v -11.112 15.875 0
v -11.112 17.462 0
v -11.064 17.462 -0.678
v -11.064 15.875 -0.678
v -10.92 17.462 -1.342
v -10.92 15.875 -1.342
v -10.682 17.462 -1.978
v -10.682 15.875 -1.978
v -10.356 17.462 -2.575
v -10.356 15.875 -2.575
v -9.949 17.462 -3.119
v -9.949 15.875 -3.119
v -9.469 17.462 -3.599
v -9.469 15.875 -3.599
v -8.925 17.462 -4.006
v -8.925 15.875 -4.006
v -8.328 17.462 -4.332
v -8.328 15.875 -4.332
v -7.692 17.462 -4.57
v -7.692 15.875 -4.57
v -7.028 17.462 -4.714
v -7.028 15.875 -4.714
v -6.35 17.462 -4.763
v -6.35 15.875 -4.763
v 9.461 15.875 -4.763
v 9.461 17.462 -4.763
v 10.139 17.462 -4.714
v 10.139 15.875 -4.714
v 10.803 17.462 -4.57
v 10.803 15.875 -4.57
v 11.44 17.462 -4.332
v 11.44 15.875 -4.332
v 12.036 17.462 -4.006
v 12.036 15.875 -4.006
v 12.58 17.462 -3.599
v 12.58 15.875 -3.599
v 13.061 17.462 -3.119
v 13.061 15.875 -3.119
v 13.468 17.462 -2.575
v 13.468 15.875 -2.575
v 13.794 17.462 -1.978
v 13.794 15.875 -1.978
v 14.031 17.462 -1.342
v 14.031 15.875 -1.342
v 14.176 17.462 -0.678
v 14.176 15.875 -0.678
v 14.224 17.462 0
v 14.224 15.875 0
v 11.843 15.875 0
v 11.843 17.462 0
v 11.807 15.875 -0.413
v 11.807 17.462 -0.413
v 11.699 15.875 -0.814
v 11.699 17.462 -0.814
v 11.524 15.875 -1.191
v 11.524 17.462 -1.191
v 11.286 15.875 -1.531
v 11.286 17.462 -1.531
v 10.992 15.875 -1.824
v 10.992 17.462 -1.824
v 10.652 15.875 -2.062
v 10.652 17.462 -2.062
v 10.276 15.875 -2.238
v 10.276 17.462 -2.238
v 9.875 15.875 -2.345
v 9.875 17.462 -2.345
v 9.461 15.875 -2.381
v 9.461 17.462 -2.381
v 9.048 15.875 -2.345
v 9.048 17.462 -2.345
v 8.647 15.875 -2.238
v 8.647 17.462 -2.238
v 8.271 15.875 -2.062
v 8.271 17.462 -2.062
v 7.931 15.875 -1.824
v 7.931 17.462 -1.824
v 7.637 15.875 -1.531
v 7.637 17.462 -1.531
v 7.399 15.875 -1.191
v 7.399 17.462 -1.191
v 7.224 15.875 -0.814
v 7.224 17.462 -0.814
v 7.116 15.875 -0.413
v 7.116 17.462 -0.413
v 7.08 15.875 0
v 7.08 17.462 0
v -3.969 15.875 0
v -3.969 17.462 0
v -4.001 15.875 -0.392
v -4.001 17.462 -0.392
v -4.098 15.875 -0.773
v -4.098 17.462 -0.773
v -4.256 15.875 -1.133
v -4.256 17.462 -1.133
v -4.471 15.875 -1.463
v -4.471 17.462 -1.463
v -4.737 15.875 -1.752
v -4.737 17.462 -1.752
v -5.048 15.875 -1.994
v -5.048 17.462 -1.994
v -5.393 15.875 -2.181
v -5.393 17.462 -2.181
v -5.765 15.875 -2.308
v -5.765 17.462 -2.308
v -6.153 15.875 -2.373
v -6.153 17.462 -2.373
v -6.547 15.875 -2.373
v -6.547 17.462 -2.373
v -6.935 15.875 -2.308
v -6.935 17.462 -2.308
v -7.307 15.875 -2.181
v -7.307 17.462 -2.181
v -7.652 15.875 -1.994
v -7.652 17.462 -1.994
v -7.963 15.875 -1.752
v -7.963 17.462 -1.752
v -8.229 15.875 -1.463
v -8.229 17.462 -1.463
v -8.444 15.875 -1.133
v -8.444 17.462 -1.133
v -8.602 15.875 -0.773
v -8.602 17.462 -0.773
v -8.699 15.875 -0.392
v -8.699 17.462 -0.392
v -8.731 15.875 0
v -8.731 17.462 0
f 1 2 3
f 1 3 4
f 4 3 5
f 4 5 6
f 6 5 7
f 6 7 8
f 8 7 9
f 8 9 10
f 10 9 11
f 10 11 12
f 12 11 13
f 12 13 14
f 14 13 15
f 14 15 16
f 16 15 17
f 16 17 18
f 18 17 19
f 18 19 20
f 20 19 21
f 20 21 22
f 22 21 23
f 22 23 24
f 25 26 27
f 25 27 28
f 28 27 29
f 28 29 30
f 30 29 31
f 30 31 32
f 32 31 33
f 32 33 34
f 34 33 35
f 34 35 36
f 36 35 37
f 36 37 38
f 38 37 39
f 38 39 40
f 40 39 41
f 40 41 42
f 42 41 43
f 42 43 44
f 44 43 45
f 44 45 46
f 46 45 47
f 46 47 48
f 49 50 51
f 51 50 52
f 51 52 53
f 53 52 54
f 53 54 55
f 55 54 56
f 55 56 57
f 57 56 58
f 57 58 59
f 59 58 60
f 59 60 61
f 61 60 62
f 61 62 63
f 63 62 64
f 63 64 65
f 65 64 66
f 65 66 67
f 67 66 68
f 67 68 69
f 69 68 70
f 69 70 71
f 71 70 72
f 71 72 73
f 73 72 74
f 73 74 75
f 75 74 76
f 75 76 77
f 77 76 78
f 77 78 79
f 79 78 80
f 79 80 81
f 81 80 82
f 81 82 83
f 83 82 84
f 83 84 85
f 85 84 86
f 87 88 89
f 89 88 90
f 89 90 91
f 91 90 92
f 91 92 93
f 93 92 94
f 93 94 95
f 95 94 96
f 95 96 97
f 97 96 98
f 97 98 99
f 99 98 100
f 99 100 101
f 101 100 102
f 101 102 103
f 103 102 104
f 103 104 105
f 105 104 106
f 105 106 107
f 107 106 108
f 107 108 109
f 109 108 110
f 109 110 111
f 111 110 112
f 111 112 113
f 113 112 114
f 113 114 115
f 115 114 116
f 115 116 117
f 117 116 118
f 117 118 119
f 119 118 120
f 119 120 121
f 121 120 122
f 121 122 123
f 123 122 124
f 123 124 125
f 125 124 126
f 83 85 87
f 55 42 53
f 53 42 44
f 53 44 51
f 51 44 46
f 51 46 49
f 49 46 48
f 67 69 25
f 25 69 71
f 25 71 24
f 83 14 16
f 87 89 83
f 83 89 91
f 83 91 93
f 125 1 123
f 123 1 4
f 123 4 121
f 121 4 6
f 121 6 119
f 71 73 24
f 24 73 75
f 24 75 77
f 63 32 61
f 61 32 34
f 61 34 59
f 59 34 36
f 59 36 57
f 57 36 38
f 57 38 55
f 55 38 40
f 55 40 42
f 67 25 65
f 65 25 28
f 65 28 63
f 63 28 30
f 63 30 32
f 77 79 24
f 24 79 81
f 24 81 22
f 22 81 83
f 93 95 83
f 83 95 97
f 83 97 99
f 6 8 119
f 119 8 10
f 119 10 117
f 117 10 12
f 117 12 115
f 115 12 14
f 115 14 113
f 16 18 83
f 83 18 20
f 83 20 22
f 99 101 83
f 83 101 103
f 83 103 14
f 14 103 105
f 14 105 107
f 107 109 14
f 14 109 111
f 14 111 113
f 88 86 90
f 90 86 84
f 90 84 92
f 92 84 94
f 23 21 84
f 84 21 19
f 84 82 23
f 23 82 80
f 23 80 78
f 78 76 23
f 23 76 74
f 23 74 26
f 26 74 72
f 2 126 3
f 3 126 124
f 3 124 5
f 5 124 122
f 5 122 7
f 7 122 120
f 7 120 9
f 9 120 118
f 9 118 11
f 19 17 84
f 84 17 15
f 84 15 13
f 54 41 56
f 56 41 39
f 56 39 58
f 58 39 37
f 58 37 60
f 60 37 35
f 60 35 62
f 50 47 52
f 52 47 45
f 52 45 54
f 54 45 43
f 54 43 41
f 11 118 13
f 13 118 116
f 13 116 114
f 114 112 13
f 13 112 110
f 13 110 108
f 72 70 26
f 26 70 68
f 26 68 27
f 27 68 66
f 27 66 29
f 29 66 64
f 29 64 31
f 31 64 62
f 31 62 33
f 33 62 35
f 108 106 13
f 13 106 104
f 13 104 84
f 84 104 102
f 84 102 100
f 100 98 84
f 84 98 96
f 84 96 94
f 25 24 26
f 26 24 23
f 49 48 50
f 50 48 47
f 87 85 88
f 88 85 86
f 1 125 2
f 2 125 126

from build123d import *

# Parameters (mm, degrees)
SKETCH1_R               = 2.38125
BOSS_EXTRUDE1_DEPTH     = 1.5875
SKETCH2_R               = 3.175
BOSS_EXTRUDE2_DEPTH     = 1.5875
SKETCH3_R               = 2.38125
BOSS_EXTRUDE3_DEPTH     = 19.05
SKETCH4_R               = 3.175
BOSS_EXTRUDE4_DEPTH     = 1.5875
SKETCH5_R               = 2.38125
BOSS_EXTRUDE5_DEPTH     = 1.5875
SKETCH6_R               = 2.38125
CUT_EXTRUDE1_DEPTH      = 28.662025878
SKETCH7_W               = 40.69090725
SKETCH7_H               = 20.005301762
CUT_EXTRUDE2_DEPTH      = 26.381492779
CUT_EXTRUDE3_DEPTH      = 19.487872394
CUT_EXTRUDE3_DEPTH_BACK = 19.487872394
SKETCH8_R               = 2.38125


with BuildPart() as part:
    # Sketch1 → Boss-Extrude1 (new body)
    with BuildSketch(Plane(origin=(0, 0, 0), x_dir=(1, 0, 0), z_dir=(0, 1, 0))):
        with BuildLine():
            Line((9.398005644, 4.762076723), (-6.35, 4.7625))
            ThreePointArc((-6.35, 4.7625), (-11.020584629, 0.931152767), (-8.176363381, -4.398386414))
            ThreePointArc((-8.176363381, -4.398386414), (-5.292234705, -6.221263486), (-3.181508348, -8.901918869))
            ThreePointArc((-3.181508348, -8.901918869), (1.849687492, -11.693035316), (6.504625866, -8.311495529))
            ThreePointArc((6.504625866, -8.311495529), (8.146827792, -5.96033805), (10.67447942, -4.60544104))
            ThreePointArc((10.67447942, -4.60544104), (14.180390361, 0.643024113), (9.398005644, 4.762076723))
        make_face()
        with Locations(Location((-6.35, 0, 0), (0, 0, 270))):
            Circle(SKETCH1_R, mode=Mode.SUBTRACT)
        with Locations(Location((9.4615, 0, 0), (0, 0, 270))):
            Circle(SKETCH1_R, mode=Mode.SUBTRACT)
        with Locations(Location((1.524, -6.35, 0), (0, 0, 270))):
            Circle(SKETCH1_R, mode=Mode.SUBTRACT)
    extrude(amount=BOSS_EXTRUDE1_DEPTH)

    # Sketch2 → Boss-Extrude2 (add)
    with BuildSketch(Plane.XZ):
        with Locations(Location((1.524, 6.35, 0), (0, 0, 90))):
            Circle(SKETCH2_R)
    extrude(amount=BOSS_EXTRUDE2_DEPTH)

    # Sketch3 → Boss-Extrude3 (add)
    with BuildSketch(Plane(origin=(0, 0, 0), x_dir=(1, 0, 0), z_dir=(0, 1, 0))):
        with Locations(Location((1.524, -6.35, 0), (0, 0, 90))):
            Circle(SKETCH3_R)
    extrude(amount=BOSS_EXTRUDE3_DEPTH)

    # Sketch4 → Boss-Extrude4 (add)
    with BuildSketch(Plane(origin=(0, 19.05, 0), x_dir=(1, 0, 0), z_dir=(0, 1, 0))):
        with Locations(Location((1.524, -6.35, 0), (0, 0, 270))):
            Circle(SKETCH4_R)
    extrude(amount=-BOSS_EXTRUDE4_DEPTH)

    # Sketch6 → Cut-Extrude1 (cut, through all)
    with BuildSketch(Plane(origin=(0, 19.05, 0), x_dir=(1, 0, 0), z_dir=(0, 1, 0))):
        with Locations(Location((1.524, -6.35, 0), (0, 0, 90))):
            Circle(SKETCH6_R)
    extrude(amount=-CUT_EXTRUDE1_DEPTH, mode=Mode.SUBTRACT)


with BuildPart() as body_2:
    # Sketch5 → Boss-Extrude5 (new body)
    with BuildSketch(Plane.XZ.offset(-17.4625)):
        with BuildLine():
            ThreePointArc((-8.176363381, 4.398386414), (-11.020584629, -0.931152767), (-6.35, -4.7625))
            Line((-6.35, -4.7625), (9.4615, -4.7625))
            ThreePointArc((9.4615, -4.7625), (14.184572051, -0.611552653), (10.67447942, 4.60544104))
            ThreePointArc((10.67447942, 4.60544104), (8.146827792, 5.96033805), (6.504625866, 8.311495529))
            ThreePointArc((6.504625866, 8.311495529), (1.849687492, 11.693035316), (-3.181508348, 8.901918869))
            ThreePointArc((-3.181508348, 8.901918869), (-5.292234705, 6.221263486), (-8.176363381, 4.398386414))
        make_face()
        with Locations(Location((-6.35, 0, 0), (0, 0, 270))):
            Circle(SKETCH5_R, mode=Mode.SUBTRACT)
        with Locations(Location((9.4615, 0, 0), (0, 0, 270))):
            Circle(SKETCH5_R, mode=Mode.SUBTRACT)
        with Locations(Location((1.524, 6.35, 0), (0, 0, 270))):
            Circle(SKETCH5_R, mode=Mode.SUBTRACT)
    extrude(amount=BOSS_EXTRUDE5_DEPTH)


with BuildPart() as cut_extrude1_piece_1:
    # of the separate pieces the step leaves, piece 1, a body of its own (cut_extrude1_pieces)
    add(part.part.solids().sort_by_distance((9.398005644, 0, -4.762076723))[0])

    # Sketch7 → Cut-Extrude2 (cut, through all)
    with BuildSketch(Plane(origin=(0, 1.5875, 0), x_dir=(1, 0, 0), z_dir=(0, 1, 0))):
        with Locations((0.04887425, -4.128782639)):
            Rectangle(SKETCH7_W, SKETCH7_H)
    extrude(amount=-CUT_EXTRUDE2_DEPTH, mode=Mode.SUBTRACT)


with BuildPart() as cut_extrude1_piece_2:
    # of the separate pieces the step leaves, piece 2, a body of its own (cut_extrude1_pieces)
    add(part.part.solids().sort_by_distance((1.524, 17.4625, 9.525))[0])


with BuildPart() as cut_extrude3_tool:
    # Sketch8 → Cut-Extrude3 (new, two sides: drawn at the far end of the back side and taken through both)
    # profile 1 of 2: a face of its own
    with BuildSketch(Plane(origin=(0, 17.4625, 0), x_dir=(1, 0, 0), z_dir=(0, 1, 0)).offset(-CUT_EXTRUDE3_DEPTH_BACK)):
        with BuildLine():
            Line((14.224, 0), (11.84275, 0))
            ThreePointArc((11.84275, 0), (9.4615, -2.38125), (7.08025, 0))
            Line((7.08025, 0), (-3.96875, 0))
            ThreePointArc((-3.96875, 0), (-6.35, -2.38125), (-8.73125, 0))
            Line((-8.73125, 0), (-11.1125, 0))
            ThreePointArc((-11.1125, 0), (-10.311026499, -2.644177627), (-8.176363381, -4.398386414))
            ThreePointArc((-8.176363381, -4.398386414), (-5.292234705, -6.221263486), (-3.181508348, -8.901918869))
            ThreePointArc((-3.181508348, -8.901918869), (1.849687492, -11.693035316), (6.504625866, -8.311495529))
            ThreePointArc((6.504625866, -8.311495529), (8.146827792, -5.96033805), (10.67447942, -4.60544104))
            ThreePointArc((10.67447942, -4.60544104), (13.233649304, -2.907283248), (14.224, 0))
        make_face()
        with Locations((1.524, -6.35)):
            Circle(SKETCH8_R, mode=Mode.SUBTRACT)
    # profile 2 of 2: a face of its own
    with BuildSketch(Plane(origin=(0, 17.4625, 0), x_dir=(1, 0, 0), z_dir=(0, 1, 0)).offset(-CUT_EXTRUDE3_DEPTH_BACK)):
        with Locations((1.524, -6.35)):
            Circle(SKETCH8_R)
    extrude(amount=CUT_EXTRUDE3_DEPTH + CUT_EXTRUDE3_DEPTH_BACK)


with BuildPart() as body_2_1:
    add(body_2.part)

    # Cut-Extrude3: cut by cut_extrude3_tool
    add(cut_extrude3_tool.part, mode=Mode.SUBTRACT)


with BuildPart() as cut_extrude1_piece_2_1:
    add(cut_extrude1_piece_2.part)

    # Cut-Extrude3: cut by cut_extrude3_tool
    add(cut_extrude3_tool.part, mode=Mode.SUBTRACT)


solid = body_2_1.part
